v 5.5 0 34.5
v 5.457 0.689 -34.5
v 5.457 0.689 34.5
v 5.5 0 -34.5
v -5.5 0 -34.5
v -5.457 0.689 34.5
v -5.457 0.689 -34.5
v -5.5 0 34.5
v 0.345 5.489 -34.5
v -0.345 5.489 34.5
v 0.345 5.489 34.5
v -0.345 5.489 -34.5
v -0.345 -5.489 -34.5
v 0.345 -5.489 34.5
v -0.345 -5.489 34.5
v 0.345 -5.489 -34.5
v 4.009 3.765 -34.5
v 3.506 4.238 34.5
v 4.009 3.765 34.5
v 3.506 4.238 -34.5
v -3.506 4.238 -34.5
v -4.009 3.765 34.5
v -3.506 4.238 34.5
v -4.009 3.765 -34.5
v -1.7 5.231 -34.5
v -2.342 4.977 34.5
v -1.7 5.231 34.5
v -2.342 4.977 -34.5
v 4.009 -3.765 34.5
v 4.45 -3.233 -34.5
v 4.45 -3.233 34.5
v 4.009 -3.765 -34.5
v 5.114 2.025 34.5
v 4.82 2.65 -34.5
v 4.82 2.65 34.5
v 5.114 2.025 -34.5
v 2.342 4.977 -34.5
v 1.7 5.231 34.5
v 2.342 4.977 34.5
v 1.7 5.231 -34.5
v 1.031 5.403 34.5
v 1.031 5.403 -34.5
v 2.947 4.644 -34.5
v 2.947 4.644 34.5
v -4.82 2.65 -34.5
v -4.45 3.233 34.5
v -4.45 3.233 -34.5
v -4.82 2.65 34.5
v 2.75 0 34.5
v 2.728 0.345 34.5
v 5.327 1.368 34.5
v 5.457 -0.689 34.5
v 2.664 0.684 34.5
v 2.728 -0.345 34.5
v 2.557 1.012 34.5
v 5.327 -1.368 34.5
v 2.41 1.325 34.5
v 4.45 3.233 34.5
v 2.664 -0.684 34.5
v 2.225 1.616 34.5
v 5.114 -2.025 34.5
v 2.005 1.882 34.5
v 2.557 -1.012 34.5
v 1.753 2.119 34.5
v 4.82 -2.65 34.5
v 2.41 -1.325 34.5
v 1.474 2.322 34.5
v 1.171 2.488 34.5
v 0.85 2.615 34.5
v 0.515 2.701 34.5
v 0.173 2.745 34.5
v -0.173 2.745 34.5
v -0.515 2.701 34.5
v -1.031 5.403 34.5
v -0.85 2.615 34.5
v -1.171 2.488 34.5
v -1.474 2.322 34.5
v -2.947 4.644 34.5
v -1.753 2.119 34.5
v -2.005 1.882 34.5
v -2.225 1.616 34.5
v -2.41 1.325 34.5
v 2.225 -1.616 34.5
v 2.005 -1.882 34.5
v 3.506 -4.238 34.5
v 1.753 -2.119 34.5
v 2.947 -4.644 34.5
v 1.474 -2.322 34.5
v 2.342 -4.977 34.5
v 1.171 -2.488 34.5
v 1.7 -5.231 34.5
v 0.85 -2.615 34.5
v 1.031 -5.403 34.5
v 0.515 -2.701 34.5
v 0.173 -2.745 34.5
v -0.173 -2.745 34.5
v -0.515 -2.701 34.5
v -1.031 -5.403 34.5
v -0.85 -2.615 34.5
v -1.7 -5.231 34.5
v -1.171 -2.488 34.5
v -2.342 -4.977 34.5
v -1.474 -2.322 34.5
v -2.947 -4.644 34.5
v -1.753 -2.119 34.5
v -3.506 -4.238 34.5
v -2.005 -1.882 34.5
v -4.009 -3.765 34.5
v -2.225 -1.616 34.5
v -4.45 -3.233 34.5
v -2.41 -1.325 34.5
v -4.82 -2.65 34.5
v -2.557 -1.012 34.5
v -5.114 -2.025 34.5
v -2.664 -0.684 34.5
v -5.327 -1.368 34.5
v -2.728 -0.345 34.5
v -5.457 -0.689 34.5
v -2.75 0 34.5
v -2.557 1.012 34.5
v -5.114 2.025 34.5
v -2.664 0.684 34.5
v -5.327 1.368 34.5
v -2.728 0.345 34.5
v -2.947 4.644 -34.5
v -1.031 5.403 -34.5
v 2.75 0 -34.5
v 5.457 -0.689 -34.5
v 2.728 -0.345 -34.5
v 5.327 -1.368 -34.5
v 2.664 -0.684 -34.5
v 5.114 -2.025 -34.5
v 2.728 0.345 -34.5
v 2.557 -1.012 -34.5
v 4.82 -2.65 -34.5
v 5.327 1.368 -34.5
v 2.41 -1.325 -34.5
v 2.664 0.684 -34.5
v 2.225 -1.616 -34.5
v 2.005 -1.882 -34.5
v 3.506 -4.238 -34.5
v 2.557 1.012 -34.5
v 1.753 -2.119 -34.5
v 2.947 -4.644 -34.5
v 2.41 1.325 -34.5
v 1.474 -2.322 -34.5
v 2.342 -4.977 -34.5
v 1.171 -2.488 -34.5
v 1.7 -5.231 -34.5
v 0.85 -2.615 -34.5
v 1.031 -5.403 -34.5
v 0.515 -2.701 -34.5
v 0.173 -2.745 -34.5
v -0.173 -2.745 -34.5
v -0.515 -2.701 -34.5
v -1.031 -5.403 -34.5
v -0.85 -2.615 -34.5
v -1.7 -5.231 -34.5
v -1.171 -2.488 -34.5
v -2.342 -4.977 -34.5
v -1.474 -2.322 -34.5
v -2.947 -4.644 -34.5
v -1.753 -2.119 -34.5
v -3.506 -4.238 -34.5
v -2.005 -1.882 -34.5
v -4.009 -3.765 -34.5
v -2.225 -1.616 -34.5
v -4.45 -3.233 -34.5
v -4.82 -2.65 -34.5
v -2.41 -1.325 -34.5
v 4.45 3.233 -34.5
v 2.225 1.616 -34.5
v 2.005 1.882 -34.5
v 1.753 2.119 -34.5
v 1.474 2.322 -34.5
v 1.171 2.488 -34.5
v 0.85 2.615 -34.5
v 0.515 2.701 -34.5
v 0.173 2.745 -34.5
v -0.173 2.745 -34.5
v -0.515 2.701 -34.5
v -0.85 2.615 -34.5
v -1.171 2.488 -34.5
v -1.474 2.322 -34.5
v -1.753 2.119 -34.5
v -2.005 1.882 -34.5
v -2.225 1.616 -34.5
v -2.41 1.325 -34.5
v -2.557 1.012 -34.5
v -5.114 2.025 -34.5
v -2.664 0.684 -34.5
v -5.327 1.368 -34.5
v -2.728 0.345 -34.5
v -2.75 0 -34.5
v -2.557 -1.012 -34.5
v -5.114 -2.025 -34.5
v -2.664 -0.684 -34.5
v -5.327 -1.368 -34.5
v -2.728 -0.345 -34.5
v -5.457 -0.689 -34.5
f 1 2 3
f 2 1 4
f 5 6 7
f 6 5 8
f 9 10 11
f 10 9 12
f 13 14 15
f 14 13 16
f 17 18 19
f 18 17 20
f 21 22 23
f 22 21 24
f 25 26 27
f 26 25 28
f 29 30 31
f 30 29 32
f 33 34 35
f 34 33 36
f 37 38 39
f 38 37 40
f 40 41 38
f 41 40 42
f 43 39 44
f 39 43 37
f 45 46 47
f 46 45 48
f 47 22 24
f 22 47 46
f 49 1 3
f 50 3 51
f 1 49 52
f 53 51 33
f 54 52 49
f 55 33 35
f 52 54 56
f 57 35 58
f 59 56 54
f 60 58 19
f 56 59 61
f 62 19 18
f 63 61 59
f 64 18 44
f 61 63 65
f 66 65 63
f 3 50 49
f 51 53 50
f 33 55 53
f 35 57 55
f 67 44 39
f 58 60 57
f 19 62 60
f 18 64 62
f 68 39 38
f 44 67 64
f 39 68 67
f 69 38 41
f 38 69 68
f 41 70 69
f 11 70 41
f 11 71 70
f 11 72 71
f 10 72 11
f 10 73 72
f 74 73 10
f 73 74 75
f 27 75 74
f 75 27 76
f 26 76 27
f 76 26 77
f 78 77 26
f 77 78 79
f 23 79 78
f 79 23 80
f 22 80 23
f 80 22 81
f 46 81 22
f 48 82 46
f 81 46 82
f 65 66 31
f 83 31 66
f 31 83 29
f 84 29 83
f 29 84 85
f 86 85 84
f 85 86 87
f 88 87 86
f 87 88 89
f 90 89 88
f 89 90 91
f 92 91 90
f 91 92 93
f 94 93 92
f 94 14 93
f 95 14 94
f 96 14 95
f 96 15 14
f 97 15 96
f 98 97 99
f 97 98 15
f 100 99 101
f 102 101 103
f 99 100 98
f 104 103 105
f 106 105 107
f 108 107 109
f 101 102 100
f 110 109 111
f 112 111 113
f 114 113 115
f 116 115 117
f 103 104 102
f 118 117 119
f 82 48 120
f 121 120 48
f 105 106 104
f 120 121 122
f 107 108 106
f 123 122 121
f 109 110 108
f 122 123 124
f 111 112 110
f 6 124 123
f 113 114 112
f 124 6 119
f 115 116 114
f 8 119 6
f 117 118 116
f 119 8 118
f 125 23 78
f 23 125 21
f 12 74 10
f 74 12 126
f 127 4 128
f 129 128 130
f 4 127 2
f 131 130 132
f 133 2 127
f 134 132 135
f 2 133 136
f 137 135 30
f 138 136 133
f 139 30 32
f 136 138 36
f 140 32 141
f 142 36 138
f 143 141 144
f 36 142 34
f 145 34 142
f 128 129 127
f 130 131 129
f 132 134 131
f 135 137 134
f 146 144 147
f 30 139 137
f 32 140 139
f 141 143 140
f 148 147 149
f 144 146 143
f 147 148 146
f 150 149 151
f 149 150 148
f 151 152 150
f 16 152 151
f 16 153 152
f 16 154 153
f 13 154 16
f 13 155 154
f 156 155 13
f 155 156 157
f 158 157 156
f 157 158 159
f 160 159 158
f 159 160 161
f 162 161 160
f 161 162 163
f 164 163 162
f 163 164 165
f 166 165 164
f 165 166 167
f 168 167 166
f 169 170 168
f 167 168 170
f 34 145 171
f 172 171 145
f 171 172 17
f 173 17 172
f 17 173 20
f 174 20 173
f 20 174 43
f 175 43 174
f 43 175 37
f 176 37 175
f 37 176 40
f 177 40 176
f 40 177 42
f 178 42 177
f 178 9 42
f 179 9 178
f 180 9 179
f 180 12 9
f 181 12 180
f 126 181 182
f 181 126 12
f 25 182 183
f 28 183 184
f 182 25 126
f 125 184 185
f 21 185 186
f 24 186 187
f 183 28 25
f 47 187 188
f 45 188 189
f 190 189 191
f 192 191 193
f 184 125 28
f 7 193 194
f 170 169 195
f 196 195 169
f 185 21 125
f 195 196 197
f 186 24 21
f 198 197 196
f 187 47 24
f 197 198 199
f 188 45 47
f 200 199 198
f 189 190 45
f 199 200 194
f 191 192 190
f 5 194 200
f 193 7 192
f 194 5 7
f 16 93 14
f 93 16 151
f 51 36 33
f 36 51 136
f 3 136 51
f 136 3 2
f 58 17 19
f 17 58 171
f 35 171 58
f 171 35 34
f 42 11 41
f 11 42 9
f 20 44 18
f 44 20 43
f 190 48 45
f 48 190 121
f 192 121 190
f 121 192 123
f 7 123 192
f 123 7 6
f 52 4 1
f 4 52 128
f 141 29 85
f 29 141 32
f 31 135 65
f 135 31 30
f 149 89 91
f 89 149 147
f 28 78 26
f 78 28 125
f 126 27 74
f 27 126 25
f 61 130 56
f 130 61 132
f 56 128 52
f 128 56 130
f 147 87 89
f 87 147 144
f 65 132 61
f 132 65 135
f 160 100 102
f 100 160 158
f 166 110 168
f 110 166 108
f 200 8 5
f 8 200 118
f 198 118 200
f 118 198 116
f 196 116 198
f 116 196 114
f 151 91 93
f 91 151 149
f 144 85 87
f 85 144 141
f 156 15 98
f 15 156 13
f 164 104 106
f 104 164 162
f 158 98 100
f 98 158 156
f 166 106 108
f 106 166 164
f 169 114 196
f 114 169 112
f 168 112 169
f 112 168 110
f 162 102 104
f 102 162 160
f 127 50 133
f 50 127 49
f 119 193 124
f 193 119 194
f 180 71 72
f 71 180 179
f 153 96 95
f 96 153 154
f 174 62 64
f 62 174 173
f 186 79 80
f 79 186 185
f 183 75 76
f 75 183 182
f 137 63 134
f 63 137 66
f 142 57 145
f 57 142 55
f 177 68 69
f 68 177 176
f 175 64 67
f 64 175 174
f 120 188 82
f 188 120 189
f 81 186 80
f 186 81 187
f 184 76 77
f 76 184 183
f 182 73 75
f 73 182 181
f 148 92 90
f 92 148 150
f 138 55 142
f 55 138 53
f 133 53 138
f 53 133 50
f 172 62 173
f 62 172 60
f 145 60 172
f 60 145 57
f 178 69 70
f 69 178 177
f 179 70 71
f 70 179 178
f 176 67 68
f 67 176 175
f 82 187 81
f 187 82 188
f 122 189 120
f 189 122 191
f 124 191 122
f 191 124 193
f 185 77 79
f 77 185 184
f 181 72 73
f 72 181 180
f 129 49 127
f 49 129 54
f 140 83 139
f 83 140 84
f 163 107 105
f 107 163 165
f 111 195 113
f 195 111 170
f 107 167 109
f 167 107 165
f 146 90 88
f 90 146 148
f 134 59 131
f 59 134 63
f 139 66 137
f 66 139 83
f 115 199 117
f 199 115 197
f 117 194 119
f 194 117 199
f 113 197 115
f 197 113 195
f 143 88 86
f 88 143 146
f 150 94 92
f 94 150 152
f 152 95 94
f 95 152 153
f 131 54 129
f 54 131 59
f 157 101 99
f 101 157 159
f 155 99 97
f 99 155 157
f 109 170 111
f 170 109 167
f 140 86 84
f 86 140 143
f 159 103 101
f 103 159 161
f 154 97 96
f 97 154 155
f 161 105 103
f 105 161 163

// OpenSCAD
$fn = 50;


difference() {
	union() {
		translate(v = [0, 0, -34.5000000000]) {
			cylinder(h = 69, r = 5.5000000000);
		}
	}
	union() {
		translate(v = [0, 0, -100.0000000000]) {
			cylinder(h = 200, r = 2.7500000000);
		}
	}
}
